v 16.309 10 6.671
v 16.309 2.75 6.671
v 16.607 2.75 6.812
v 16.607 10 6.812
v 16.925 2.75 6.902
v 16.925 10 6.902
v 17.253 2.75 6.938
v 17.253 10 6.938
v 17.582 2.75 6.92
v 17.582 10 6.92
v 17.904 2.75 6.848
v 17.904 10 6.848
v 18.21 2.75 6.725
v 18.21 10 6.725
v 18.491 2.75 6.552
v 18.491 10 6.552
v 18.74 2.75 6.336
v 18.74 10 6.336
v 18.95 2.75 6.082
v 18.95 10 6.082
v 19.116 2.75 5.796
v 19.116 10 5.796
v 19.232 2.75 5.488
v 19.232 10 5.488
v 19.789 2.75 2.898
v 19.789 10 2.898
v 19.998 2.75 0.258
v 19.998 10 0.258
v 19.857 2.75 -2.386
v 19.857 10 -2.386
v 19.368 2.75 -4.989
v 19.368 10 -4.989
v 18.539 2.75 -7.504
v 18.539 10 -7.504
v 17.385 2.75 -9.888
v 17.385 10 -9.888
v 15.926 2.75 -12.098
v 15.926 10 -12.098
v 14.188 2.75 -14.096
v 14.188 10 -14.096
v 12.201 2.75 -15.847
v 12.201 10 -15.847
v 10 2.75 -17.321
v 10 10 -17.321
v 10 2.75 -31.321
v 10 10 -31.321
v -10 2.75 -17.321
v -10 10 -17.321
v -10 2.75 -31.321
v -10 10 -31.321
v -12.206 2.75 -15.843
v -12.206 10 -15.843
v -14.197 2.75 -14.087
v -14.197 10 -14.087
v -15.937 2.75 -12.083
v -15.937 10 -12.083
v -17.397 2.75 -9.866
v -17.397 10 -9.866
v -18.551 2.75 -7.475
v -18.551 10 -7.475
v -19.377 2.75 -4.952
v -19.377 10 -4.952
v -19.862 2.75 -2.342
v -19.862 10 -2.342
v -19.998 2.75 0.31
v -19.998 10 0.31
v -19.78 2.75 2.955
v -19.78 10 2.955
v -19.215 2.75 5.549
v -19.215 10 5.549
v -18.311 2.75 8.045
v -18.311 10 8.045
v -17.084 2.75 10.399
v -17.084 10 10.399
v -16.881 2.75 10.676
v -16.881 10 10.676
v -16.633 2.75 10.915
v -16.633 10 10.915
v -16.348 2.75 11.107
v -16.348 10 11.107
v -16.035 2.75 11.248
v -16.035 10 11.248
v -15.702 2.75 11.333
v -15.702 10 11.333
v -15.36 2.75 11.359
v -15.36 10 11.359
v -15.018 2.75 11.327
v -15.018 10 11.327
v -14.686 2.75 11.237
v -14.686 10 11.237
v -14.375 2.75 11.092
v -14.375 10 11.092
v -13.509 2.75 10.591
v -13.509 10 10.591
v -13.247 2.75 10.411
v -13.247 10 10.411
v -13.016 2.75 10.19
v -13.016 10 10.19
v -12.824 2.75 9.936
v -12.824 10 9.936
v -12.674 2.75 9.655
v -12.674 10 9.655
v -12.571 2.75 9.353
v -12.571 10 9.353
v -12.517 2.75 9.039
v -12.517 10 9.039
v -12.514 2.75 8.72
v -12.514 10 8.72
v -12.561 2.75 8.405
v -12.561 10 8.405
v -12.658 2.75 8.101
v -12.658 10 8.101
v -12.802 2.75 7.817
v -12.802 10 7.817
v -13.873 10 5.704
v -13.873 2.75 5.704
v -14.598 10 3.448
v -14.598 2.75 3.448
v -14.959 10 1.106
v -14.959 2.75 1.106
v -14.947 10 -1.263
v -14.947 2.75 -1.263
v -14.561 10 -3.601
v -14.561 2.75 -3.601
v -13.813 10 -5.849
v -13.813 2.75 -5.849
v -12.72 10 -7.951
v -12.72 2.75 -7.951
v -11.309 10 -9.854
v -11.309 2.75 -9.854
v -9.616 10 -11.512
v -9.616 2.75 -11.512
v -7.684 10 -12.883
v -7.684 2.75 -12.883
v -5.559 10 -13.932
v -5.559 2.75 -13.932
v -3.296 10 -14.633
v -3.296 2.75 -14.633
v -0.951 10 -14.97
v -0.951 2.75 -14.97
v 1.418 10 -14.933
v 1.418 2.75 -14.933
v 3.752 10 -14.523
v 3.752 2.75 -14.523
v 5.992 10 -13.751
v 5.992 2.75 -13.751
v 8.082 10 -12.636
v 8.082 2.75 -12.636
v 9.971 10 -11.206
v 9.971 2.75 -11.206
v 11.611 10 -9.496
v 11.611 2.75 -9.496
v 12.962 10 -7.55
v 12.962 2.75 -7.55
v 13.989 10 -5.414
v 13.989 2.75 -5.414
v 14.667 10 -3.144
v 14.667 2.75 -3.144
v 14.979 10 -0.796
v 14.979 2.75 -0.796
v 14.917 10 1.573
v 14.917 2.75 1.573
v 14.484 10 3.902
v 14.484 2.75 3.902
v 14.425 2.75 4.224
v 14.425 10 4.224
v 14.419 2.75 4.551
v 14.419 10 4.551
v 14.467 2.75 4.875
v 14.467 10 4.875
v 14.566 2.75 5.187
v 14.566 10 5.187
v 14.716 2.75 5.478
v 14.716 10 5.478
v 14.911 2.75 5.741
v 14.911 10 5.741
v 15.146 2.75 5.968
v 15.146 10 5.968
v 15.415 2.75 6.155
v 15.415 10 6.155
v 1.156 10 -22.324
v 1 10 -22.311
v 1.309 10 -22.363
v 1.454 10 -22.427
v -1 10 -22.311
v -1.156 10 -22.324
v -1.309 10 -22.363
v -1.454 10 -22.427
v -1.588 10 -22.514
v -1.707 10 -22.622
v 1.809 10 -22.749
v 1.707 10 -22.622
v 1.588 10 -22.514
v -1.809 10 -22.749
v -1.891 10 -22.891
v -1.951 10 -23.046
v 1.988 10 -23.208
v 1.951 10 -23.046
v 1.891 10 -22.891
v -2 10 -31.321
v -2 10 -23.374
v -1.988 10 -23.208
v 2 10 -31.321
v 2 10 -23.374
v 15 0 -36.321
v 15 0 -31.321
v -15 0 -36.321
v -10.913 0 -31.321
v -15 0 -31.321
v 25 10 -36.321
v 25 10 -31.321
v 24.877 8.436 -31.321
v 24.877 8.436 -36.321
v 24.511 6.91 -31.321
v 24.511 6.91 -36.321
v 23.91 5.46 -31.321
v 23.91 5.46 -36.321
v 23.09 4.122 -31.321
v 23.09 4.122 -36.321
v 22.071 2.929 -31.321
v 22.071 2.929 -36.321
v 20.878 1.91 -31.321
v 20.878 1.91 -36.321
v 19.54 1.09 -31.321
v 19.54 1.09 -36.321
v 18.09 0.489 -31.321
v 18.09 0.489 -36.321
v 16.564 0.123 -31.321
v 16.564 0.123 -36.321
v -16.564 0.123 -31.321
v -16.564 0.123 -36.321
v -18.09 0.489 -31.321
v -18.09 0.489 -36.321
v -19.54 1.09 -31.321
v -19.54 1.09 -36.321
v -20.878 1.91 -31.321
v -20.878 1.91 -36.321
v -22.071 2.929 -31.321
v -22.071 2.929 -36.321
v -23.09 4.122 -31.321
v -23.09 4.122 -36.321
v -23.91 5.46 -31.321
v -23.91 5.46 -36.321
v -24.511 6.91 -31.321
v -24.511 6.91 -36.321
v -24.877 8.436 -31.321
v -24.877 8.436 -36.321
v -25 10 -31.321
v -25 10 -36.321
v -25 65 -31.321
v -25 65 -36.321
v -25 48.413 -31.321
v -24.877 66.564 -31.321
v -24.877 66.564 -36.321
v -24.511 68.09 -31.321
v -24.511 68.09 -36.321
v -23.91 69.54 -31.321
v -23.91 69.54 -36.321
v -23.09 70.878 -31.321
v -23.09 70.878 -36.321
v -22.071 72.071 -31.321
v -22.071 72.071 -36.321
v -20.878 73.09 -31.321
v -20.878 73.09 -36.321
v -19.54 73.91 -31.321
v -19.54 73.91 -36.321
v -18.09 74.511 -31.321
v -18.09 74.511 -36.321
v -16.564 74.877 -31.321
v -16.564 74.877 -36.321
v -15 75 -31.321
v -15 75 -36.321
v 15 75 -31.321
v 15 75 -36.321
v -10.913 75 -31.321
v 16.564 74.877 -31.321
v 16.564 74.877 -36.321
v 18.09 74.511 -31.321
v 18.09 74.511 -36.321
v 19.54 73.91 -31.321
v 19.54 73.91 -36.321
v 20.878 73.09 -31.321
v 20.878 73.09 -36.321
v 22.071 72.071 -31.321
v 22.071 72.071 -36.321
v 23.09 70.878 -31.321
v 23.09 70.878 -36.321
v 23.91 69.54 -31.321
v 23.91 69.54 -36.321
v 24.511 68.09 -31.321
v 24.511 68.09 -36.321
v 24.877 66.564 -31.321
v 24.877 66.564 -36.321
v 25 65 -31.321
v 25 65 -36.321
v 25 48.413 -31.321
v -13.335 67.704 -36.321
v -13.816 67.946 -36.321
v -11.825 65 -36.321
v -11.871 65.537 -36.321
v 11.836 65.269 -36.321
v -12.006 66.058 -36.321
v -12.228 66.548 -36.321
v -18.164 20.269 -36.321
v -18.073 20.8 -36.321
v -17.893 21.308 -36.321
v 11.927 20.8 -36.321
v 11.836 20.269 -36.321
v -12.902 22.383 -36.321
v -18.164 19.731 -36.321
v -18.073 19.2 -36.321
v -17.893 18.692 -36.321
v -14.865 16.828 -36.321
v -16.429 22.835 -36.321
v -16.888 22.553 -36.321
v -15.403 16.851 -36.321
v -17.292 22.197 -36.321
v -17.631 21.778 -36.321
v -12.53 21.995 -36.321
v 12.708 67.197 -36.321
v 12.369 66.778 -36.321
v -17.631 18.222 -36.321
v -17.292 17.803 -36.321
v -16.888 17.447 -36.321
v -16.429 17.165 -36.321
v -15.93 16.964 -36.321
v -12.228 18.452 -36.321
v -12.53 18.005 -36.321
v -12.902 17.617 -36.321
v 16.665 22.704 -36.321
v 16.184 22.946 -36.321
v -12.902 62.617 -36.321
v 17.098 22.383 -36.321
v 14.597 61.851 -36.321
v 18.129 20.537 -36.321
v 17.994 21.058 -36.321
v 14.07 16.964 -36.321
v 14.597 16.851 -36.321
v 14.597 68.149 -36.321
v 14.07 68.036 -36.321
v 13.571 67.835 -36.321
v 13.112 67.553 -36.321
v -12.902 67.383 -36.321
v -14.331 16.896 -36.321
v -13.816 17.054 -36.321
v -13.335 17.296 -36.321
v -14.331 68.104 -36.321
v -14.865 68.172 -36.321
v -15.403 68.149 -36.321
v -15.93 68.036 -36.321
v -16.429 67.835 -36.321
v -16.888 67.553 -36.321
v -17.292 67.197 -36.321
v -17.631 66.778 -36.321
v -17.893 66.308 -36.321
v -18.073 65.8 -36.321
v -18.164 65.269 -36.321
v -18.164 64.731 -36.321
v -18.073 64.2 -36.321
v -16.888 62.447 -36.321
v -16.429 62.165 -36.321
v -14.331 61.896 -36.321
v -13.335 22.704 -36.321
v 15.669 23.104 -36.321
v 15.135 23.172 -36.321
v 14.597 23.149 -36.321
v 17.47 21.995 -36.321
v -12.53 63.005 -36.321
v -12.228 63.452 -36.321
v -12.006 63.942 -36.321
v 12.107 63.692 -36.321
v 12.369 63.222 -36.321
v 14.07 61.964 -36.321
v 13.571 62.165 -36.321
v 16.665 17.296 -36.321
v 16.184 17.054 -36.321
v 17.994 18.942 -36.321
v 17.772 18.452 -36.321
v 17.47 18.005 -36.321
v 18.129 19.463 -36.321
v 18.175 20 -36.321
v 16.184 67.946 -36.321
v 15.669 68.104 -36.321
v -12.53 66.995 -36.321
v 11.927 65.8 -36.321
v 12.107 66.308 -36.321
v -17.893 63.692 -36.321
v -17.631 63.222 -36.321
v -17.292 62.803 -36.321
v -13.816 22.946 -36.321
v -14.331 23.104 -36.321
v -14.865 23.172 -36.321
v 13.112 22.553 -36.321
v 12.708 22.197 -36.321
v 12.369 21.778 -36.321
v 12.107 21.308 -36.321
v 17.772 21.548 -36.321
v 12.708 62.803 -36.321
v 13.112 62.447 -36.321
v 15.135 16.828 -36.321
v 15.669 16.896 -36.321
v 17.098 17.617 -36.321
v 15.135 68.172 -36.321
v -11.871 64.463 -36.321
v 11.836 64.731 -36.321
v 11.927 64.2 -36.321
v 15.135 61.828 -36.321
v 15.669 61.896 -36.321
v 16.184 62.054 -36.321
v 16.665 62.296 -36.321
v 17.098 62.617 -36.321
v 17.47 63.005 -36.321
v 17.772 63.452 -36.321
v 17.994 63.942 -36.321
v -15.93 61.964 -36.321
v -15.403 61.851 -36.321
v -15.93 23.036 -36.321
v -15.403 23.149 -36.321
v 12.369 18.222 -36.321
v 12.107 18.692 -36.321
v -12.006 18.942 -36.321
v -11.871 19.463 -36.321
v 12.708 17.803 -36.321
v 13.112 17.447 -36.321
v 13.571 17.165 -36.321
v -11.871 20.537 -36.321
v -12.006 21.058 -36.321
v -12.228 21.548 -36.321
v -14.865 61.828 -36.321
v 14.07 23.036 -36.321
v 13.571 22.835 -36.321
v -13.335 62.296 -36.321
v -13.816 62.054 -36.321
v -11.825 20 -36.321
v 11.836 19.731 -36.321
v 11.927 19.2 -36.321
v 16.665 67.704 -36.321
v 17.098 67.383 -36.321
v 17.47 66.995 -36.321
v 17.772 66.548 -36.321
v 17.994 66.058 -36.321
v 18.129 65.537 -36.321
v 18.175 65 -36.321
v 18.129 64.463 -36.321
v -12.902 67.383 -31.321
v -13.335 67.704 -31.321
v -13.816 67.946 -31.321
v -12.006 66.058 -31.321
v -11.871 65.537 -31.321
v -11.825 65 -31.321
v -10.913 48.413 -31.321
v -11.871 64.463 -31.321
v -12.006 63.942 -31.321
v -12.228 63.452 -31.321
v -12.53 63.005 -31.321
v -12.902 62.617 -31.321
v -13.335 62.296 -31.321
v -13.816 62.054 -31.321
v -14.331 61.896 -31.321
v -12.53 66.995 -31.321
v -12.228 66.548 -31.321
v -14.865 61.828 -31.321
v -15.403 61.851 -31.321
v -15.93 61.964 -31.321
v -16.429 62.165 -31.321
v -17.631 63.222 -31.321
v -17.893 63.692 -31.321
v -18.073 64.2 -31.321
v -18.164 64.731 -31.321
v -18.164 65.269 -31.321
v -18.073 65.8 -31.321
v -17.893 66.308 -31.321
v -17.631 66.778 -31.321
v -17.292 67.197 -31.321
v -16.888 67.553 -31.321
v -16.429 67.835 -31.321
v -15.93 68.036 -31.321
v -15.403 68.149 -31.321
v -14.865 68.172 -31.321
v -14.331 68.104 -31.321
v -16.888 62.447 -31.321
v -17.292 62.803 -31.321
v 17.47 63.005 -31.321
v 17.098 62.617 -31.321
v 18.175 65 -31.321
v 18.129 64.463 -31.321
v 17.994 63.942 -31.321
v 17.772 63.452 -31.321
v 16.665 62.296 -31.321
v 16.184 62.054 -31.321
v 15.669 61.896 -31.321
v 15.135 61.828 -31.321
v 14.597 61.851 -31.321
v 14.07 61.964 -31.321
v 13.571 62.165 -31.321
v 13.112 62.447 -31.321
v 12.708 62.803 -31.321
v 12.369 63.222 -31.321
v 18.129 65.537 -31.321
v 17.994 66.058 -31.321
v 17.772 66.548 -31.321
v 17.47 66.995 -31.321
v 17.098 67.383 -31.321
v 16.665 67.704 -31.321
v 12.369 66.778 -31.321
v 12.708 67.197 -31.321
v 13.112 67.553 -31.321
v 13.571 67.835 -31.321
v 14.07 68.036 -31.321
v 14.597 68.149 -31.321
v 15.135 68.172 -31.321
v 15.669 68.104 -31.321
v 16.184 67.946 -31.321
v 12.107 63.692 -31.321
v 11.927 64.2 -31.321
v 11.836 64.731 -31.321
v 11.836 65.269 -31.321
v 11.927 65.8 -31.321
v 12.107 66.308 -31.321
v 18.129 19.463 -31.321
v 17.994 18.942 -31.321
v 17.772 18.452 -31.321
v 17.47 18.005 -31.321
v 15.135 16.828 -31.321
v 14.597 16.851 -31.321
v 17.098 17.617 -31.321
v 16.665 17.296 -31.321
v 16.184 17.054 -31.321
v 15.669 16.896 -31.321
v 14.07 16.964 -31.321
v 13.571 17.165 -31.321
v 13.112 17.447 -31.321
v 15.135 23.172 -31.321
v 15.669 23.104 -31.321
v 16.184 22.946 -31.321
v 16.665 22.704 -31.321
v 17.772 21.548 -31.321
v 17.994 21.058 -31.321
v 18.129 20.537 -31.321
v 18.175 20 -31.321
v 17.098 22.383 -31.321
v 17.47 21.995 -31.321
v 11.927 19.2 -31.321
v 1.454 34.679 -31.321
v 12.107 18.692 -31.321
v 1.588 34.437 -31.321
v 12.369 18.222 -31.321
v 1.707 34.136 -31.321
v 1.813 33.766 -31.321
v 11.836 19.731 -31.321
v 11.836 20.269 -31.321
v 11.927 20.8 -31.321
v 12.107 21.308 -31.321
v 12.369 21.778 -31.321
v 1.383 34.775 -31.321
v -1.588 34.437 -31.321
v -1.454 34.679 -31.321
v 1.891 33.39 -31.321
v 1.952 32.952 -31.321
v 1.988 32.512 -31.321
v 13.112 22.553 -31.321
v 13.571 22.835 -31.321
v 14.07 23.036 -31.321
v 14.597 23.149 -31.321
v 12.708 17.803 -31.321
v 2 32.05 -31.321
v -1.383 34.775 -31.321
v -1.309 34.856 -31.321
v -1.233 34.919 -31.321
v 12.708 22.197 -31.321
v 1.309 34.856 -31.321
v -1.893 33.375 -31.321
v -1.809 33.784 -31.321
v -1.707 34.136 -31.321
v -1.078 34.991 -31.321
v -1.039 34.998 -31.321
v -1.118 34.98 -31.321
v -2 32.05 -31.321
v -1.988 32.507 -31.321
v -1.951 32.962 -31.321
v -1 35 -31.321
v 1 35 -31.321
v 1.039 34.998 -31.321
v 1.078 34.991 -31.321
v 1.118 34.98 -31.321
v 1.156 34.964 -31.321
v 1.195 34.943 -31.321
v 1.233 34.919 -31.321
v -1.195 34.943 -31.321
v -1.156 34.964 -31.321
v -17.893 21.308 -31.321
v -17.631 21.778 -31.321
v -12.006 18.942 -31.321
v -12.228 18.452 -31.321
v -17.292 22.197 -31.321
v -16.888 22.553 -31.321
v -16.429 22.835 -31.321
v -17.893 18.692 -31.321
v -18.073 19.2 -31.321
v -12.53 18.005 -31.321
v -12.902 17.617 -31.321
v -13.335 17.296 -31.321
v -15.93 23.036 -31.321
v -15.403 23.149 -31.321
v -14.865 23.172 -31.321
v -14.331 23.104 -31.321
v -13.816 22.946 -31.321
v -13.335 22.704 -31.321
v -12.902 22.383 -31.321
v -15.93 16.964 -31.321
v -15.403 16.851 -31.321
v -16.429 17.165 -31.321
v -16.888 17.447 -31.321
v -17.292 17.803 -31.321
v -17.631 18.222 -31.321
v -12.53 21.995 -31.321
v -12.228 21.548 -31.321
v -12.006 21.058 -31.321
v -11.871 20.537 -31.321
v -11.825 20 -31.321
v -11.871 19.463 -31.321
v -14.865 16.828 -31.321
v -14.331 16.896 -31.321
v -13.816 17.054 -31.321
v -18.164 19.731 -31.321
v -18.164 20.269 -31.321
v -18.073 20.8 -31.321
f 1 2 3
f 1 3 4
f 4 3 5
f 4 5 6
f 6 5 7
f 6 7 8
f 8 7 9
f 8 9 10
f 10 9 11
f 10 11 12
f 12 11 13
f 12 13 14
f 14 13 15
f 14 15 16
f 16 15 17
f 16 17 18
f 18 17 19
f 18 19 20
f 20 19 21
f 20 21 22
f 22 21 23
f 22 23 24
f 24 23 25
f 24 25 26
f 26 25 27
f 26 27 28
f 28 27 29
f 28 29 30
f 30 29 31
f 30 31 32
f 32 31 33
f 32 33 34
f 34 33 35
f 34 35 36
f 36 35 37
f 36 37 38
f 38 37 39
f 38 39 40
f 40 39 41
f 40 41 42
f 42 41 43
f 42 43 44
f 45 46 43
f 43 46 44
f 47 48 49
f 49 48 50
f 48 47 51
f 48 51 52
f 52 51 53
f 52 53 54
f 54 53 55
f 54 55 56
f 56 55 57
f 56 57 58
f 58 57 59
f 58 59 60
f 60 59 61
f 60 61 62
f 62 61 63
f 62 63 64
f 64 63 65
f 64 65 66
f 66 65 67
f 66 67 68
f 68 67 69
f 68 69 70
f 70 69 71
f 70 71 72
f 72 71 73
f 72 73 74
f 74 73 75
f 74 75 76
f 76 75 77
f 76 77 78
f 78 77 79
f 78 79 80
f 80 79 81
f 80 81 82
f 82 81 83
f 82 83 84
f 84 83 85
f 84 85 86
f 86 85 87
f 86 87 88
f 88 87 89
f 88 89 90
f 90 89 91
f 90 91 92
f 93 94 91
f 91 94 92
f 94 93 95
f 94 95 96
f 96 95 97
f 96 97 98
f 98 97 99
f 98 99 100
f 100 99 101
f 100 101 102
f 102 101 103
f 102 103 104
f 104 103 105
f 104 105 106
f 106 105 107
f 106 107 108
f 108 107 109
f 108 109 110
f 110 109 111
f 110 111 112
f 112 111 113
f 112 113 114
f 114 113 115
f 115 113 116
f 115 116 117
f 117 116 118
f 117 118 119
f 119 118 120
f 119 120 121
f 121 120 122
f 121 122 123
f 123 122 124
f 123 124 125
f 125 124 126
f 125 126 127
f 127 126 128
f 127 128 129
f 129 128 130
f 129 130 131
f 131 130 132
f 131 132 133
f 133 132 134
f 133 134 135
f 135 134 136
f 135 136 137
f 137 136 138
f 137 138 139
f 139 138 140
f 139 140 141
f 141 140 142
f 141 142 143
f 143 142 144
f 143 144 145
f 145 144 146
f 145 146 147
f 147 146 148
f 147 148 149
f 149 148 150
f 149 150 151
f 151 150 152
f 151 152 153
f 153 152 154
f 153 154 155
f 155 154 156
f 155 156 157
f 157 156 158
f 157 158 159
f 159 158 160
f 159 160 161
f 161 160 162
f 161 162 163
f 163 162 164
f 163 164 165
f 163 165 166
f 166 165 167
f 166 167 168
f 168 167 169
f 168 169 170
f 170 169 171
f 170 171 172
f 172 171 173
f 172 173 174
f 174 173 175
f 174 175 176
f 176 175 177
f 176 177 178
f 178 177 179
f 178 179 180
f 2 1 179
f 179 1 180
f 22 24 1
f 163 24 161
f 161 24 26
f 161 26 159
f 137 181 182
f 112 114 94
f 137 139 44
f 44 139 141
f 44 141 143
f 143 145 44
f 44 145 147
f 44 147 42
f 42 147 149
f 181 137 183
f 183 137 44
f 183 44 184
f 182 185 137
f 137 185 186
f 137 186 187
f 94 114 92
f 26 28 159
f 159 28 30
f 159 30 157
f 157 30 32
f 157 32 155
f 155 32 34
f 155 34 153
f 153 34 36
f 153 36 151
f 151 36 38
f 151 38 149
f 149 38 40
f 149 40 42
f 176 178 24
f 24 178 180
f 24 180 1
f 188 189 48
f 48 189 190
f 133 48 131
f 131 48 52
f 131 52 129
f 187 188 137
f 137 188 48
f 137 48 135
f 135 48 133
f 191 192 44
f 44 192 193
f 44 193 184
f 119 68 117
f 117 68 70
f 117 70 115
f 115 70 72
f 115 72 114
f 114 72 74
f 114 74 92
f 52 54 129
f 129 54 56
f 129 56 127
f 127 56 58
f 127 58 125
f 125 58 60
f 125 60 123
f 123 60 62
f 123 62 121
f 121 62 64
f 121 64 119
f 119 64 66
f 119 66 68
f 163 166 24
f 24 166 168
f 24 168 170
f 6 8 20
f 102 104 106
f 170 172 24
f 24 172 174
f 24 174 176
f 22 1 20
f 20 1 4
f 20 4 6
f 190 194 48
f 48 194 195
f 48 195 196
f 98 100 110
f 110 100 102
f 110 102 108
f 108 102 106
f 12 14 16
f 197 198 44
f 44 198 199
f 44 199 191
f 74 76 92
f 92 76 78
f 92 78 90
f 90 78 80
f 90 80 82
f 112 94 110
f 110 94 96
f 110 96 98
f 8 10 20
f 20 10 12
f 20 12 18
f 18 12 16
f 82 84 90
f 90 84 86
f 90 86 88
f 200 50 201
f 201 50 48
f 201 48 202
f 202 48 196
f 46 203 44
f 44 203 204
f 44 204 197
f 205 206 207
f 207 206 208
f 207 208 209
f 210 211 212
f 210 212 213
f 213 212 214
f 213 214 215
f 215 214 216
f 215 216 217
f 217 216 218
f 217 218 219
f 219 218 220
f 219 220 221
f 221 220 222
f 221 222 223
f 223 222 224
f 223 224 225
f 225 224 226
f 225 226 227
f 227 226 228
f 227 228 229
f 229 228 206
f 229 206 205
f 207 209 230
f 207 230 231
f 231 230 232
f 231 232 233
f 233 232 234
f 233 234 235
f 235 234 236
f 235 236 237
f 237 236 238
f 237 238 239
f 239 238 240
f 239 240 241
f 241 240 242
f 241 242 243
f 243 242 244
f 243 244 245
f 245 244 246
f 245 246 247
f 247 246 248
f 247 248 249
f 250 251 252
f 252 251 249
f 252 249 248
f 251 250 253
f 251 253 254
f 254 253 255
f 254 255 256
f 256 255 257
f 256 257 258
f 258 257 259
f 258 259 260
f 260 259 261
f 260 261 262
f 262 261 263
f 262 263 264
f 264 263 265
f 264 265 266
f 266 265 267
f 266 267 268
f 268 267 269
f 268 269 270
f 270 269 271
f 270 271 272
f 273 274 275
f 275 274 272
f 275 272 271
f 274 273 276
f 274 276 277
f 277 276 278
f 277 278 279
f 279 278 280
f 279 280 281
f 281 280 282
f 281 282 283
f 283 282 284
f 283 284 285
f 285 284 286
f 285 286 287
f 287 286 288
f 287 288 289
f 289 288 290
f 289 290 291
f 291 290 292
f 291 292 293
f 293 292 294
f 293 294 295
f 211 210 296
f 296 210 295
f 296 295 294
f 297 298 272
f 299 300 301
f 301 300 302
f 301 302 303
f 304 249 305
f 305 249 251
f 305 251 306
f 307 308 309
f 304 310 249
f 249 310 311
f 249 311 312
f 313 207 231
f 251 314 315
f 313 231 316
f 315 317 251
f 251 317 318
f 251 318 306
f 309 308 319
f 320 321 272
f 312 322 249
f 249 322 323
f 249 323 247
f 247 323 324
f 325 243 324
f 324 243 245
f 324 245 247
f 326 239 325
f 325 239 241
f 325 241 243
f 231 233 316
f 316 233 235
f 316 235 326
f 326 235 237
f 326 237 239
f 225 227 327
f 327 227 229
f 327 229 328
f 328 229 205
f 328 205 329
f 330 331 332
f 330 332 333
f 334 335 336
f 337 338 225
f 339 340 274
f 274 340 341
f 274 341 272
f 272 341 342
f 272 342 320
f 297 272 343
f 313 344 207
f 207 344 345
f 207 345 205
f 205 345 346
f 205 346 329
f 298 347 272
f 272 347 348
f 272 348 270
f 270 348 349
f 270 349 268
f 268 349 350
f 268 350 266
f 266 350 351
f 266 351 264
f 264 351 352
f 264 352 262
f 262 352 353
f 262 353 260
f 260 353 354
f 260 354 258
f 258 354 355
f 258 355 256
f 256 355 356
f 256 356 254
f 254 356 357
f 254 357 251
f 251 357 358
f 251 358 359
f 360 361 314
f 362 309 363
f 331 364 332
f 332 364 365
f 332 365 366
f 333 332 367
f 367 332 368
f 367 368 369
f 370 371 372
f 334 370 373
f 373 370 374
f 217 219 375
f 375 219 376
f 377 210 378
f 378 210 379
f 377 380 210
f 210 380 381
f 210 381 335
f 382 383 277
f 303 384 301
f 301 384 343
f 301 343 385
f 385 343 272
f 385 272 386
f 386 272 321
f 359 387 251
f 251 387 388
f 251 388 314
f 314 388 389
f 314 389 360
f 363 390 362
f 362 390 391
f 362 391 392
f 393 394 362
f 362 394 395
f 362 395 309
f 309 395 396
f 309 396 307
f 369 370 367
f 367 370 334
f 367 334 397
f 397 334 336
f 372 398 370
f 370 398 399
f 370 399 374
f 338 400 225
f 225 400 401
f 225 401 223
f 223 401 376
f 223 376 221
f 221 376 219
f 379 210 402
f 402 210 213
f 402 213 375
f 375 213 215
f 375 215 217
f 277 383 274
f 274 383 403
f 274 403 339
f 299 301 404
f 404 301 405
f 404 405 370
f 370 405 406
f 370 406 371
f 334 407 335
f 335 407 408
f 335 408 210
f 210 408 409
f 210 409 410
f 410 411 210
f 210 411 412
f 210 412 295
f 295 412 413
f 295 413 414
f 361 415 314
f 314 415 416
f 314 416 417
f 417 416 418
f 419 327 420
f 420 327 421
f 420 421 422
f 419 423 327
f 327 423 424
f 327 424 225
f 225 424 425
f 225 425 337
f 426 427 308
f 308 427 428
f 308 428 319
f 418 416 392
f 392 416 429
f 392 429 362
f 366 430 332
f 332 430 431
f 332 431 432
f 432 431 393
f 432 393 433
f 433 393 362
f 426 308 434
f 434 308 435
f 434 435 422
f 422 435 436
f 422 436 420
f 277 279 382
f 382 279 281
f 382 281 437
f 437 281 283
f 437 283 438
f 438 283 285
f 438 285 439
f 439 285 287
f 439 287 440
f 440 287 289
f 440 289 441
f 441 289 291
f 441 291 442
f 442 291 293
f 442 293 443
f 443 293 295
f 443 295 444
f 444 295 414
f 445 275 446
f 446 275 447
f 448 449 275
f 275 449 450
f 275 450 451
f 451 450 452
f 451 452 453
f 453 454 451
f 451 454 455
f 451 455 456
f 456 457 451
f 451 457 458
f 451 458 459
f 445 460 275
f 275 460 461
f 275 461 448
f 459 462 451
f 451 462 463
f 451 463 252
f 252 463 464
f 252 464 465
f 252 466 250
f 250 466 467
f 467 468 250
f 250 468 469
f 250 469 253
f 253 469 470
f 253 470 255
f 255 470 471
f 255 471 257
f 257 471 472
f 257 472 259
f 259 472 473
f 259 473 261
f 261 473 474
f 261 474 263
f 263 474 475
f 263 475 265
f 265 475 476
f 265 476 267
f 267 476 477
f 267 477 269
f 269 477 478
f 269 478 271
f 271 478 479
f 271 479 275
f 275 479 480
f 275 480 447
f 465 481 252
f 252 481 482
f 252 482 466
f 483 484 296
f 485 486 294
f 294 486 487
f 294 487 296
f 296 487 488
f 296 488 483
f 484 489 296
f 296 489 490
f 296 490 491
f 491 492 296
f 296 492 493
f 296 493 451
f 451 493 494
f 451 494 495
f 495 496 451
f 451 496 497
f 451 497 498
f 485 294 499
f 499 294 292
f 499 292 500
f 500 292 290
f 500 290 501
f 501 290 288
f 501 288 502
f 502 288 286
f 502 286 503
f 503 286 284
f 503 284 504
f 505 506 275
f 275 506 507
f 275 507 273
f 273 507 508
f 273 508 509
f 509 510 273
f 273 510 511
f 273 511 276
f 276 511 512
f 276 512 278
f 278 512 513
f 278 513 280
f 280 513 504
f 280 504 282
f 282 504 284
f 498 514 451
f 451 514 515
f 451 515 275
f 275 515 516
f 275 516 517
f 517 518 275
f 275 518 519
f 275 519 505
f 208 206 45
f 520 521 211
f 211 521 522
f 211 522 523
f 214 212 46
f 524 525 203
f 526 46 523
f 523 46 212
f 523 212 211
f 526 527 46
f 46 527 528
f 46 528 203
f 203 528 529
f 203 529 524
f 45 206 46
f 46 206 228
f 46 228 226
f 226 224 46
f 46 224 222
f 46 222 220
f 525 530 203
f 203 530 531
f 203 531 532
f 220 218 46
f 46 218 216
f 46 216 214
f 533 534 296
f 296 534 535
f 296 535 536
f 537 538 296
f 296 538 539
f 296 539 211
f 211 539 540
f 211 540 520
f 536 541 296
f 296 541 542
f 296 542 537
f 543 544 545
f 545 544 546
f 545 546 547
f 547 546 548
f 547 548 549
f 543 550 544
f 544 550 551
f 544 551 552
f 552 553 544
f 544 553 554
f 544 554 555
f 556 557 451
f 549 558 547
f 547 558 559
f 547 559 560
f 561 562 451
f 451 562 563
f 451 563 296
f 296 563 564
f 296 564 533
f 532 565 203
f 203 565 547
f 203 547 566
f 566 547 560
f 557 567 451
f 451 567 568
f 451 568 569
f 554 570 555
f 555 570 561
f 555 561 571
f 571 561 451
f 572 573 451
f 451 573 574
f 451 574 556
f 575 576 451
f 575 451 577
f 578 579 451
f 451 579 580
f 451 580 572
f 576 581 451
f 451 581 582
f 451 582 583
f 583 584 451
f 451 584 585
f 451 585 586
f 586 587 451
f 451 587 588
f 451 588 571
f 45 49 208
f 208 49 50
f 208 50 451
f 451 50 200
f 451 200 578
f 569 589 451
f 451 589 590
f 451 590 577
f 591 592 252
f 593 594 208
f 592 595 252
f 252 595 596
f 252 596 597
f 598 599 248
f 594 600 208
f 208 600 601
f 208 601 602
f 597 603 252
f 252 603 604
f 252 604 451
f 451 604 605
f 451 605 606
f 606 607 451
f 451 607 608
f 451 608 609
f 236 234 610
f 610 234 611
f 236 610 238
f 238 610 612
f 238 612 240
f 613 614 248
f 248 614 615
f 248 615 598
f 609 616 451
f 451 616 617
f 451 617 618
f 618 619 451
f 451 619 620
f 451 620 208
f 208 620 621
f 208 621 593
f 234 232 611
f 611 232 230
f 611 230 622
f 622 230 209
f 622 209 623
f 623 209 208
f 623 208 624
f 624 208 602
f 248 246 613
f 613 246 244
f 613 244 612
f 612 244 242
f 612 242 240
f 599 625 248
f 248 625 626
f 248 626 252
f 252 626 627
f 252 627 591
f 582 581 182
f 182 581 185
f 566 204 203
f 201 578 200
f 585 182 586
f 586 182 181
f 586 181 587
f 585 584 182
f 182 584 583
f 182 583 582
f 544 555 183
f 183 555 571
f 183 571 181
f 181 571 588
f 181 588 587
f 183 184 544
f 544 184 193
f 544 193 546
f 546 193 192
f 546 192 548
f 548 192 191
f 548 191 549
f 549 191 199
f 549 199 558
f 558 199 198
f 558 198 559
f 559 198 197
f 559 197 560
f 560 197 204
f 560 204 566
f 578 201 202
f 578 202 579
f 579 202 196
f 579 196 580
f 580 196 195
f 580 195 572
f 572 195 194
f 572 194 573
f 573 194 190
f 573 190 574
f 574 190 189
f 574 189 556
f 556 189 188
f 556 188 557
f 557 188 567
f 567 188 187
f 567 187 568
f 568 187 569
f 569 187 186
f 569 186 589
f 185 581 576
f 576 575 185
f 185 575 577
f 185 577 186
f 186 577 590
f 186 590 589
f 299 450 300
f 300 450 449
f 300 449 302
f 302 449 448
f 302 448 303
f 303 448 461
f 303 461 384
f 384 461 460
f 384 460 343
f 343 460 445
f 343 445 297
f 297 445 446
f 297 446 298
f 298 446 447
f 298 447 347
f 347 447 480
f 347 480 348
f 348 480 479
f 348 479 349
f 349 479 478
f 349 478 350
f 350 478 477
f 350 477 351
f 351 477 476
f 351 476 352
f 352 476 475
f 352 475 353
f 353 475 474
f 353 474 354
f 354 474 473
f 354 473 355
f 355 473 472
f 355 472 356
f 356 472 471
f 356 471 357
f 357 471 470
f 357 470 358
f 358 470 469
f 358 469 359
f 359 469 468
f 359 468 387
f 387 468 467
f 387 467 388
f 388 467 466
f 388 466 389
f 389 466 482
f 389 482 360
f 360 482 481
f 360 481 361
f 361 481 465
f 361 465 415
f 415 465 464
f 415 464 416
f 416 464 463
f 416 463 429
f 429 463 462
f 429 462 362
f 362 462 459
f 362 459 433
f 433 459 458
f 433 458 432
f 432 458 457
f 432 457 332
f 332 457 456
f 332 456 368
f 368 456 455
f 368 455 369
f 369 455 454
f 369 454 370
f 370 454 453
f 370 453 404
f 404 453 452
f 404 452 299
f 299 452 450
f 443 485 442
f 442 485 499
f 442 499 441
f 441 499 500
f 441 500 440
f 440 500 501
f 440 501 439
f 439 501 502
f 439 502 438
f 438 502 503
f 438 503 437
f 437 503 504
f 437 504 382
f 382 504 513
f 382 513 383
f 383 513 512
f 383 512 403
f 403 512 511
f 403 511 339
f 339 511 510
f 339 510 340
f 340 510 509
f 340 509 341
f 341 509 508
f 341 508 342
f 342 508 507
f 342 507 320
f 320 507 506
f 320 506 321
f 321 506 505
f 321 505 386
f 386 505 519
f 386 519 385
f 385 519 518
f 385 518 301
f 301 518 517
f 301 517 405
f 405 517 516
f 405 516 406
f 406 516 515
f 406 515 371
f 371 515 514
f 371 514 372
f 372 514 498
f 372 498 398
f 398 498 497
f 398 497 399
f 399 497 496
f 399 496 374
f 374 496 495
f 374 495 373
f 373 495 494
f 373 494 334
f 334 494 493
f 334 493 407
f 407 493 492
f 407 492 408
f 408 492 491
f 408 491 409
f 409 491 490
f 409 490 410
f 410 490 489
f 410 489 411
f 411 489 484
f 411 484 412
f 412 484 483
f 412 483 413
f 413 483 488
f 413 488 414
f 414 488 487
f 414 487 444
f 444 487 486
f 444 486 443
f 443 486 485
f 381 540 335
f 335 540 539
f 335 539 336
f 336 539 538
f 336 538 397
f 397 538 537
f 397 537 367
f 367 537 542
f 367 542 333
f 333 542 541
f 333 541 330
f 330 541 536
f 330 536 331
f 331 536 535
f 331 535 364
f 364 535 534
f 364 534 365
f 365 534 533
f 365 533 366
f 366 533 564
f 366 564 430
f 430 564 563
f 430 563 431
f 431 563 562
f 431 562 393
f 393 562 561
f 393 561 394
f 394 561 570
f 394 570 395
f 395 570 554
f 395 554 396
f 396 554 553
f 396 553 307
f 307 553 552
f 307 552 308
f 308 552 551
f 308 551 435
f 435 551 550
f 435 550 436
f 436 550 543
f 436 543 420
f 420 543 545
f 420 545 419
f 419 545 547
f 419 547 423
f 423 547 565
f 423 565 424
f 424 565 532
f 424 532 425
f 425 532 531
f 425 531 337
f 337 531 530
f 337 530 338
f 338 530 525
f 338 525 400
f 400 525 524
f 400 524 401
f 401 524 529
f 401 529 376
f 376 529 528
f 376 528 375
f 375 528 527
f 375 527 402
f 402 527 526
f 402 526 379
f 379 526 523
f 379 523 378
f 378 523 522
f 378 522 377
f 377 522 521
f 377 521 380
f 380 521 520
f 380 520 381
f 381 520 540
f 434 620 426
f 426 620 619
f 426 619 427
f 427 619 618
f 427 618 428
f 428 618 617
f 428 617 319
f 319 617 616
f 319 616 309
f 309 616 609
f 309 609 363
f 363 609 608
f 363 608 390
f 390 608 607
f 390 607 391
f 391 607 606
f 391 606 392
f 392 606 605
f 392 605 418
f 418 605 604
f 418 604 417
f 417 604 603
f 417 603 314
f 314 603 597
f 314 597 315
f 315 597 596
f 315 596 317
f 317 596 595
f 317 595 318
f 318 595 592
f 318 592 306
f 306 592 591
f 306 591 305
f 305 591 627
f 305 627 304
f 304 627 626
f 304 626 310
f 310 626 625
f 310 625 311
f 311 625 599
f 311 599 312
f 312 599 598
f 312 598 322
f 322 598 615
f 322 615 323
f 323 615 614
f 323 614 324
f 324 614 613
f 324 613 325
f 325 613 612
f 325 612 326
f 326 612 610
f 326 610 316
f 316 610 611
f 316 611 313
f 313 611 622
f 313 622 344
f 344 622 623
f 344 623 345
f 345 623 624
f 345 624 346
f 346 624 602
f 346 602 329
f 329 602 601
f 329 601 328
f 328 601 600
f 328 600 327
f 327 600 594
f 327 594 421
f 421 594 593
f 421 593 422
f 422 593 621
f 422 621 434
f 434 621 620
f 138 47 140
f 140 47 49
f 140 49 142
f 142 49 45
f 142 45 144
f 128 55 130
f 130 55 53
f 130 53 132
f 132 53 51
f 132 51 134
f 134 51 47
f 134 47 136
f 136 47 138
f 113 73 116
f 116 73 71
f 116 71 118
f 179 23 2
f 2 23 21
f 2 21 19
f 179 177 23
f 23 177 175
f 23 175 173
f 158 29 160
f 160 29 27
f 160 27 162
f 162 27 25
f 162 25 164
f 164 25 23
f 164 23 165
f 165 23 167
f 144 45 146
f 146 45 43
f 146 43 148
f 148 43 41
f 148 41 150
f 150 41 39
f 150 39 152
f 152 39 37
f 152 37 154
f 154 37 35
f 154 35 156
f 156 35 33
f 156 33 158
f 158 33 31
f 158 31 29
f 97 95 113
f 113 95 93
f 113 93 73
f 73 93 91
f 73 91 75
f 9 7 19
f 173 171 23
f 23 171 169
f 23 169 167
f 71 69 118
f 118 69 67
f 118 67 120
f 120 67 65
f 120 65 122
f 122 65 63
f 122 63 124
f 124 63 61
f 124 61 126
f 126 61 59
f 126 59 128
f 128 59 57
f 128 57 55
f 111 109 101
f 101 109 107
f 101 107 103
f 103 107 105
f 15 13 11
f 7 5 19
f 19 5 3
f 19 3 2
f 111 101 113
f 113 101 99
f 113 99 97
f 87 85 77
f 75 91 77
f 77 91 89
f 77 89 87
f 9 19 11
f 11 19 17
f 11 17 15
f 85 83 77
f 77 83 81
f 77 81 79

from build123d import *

# Parameters (mm, degrees)
BOSS_EXTRUDE1_DEPTH      = 10
SKETCH2_W                = 20
SKETCH2_H                = 10
BOSS_EXTRUDE2_DEPTH      = 10
BOSS_EXTRUDE3_DEPTH      = 5
BOSS_EXTRUDE4_DEPTH      = 2
BOSS_EXTRUDE4_DEPTH_BACK = 2
FILLET1_R                = 1
SKETCH6_R                = 3.175
CUT_EXTRUDE1_DEPTH       = 90.841967072
SKETCH8_W                = 55.480567722
SKETCH8_H                = 48.561795017
CUT_EXTRUDE2_DEPTH       = 2.75


with BuildPart() as part:
    # Sketch1 → Boss-Extrude1 (new body)
    with BuildSketch(Plane(origin=(0, 0, 0), x_dir=(1, 0, 0), z_dir=(0, 1, 0))):
        with BuildLine():
            Line((-13.509053295, -10.59136074), (-14.375325888, -11.091503454))
            ThreePointArc((-14.375325888, -11.091503454), (-15.870504116, -11.297182897), (-17.083695431, -10.39939183))
            ThreePointArc((-17.083695431, -10.39939183), (-19.377302502, 4.951782281), (-10, 17.320508076))
            Line((-10, 17.320508076), (-10, 21.320508076))
            Line((-10, 21.320508076), (2.687202796, 21.320508076))
            Line((2.687202796, 21.320508076), (10, 21.320508076))
            Line((10, 21.320508076), (10, 17.320508076))
            ThreePointArc((10, 17.320508076), (18.538798966, 7.504194355), (19.232390566, -5.487727502))
            ThreePointArc((19.232390566, -5.487727502), (18.059570944, -6.792834648), (16.309151509, -6.671005559))
            Line((16.309151509, -6.671005559), (15.414666731, -6.154574532))
            ThreePointArc((15.414666731, -6.154574532), (14.566381317, -5.186618632), (14.483529469, -3.902226816))
            ThreePointArc((14.483529469, -3.902226816), (-2.130312968, 14.847954965), (-12.802105849, -7.817038176))
            ThreePointArc((-12.802105849, -7.817038176), (-12.570985303, -9.353164625), (-13.509053295, -10.59136074))
        make_face()
    extrude(amount=BOSS_EXTRUDE1_DEPTH)

    # Sketch2 → Boss-Extrude2 (add)
    with BuildSketch(Plane(origin=(0, 0, -21.320508076), x_dir=(-1, 0, 0), z_dir=(0, 0, -1))):
        with Locations((0, 5)):
            Rectangle(SKETCH2_W, SKETCH2_H)
    extrude(amount=BOSS_EXTRUDE2_DEPTH)

    # Sketch3 → Boss-Extrude3 (add)
    with BuildSketch(Plane(origin=(0, 0, -31.320508076), x_dir=(-1, 0, 0), z_dir=(0, 0, -1))):
        with BuildLine():
            Line((-15, 75), (15, 75))
            ThreePointArc((15, 75), (22.071067812, 72.071067812), (25, 65))
            Line((25, 65), (25, 10))
            ThreePointArc((25, 10), (22.071067812, 2.928932188), (15, 0))
            Line((15, 0), (-15, 0))
            ThreePointArc((-15, 0), (-22.071067812, 2.928932188), (-25, 10))
            Line((-25, 10), (-25, 65))
            ThreePointArc((-25, 65), (-22.071067812, 72.071067812), (-15, 75))
        make_face()
    extrude(amount=BOSS_EXTRUDE3_DEPTH)

    # Sketch4 → Boss-Extrude4 (add, two sides: drawn at the far end of the back side and taken through both)
    with BuildSketch(Plane.ZY.offset(-BOSS_EXTRUDE4_DEPTH_BACK)):
        Polygon((-22.311101636, 10), (-31.320508076, 35), (-31.320508076, 10), align=None)
    extrude(amount=BOSS_EXTRUDE4_DEPTH + BOSS_EXTRUDE4_DEPTH_BACK)

    # Fillet1
    fillet1_edges = [part.edges().sort_by_distance(p)[0] for p in [
        (2, 22.5, -26.815804856),
        (-2, 22.5, -26.815804856),
    ]]
    fillet(fillet1_edges, radius=FILLET1_R)

    # Sketch6 → Cut-Extrude1 (cut, through all)
    with BuildSketch(Plane.XY.offset(-31.320508076)):
        with Locations((-15, 65)):
            Circle(SKETCH6_R)
        with Locations((15, 65)):
            Circle(SKETCH6_R)
        with Locations((15, 20)):
            Circle(SKETCH6_R)
        with Locations((-15, 20)):
            Circle(SKETCH6_R)
    extrude(amount=-CUT_EXTRUDE1_DEPTH, mode=Mode.SUBTRACT)

    # Sketch8 → Cut-Extrude2 (cut)
    with BuildSketch(Plane.XZ):
        with Locations((-0.773192615, -7.039610568)):
            Rectangle(SKETCH8_W, SKETCH8_H)
    extrude(amount=-CUT_EXTRUDE2_DEPTH, mode=Mode.SUBTRACT)


solid = part.part
